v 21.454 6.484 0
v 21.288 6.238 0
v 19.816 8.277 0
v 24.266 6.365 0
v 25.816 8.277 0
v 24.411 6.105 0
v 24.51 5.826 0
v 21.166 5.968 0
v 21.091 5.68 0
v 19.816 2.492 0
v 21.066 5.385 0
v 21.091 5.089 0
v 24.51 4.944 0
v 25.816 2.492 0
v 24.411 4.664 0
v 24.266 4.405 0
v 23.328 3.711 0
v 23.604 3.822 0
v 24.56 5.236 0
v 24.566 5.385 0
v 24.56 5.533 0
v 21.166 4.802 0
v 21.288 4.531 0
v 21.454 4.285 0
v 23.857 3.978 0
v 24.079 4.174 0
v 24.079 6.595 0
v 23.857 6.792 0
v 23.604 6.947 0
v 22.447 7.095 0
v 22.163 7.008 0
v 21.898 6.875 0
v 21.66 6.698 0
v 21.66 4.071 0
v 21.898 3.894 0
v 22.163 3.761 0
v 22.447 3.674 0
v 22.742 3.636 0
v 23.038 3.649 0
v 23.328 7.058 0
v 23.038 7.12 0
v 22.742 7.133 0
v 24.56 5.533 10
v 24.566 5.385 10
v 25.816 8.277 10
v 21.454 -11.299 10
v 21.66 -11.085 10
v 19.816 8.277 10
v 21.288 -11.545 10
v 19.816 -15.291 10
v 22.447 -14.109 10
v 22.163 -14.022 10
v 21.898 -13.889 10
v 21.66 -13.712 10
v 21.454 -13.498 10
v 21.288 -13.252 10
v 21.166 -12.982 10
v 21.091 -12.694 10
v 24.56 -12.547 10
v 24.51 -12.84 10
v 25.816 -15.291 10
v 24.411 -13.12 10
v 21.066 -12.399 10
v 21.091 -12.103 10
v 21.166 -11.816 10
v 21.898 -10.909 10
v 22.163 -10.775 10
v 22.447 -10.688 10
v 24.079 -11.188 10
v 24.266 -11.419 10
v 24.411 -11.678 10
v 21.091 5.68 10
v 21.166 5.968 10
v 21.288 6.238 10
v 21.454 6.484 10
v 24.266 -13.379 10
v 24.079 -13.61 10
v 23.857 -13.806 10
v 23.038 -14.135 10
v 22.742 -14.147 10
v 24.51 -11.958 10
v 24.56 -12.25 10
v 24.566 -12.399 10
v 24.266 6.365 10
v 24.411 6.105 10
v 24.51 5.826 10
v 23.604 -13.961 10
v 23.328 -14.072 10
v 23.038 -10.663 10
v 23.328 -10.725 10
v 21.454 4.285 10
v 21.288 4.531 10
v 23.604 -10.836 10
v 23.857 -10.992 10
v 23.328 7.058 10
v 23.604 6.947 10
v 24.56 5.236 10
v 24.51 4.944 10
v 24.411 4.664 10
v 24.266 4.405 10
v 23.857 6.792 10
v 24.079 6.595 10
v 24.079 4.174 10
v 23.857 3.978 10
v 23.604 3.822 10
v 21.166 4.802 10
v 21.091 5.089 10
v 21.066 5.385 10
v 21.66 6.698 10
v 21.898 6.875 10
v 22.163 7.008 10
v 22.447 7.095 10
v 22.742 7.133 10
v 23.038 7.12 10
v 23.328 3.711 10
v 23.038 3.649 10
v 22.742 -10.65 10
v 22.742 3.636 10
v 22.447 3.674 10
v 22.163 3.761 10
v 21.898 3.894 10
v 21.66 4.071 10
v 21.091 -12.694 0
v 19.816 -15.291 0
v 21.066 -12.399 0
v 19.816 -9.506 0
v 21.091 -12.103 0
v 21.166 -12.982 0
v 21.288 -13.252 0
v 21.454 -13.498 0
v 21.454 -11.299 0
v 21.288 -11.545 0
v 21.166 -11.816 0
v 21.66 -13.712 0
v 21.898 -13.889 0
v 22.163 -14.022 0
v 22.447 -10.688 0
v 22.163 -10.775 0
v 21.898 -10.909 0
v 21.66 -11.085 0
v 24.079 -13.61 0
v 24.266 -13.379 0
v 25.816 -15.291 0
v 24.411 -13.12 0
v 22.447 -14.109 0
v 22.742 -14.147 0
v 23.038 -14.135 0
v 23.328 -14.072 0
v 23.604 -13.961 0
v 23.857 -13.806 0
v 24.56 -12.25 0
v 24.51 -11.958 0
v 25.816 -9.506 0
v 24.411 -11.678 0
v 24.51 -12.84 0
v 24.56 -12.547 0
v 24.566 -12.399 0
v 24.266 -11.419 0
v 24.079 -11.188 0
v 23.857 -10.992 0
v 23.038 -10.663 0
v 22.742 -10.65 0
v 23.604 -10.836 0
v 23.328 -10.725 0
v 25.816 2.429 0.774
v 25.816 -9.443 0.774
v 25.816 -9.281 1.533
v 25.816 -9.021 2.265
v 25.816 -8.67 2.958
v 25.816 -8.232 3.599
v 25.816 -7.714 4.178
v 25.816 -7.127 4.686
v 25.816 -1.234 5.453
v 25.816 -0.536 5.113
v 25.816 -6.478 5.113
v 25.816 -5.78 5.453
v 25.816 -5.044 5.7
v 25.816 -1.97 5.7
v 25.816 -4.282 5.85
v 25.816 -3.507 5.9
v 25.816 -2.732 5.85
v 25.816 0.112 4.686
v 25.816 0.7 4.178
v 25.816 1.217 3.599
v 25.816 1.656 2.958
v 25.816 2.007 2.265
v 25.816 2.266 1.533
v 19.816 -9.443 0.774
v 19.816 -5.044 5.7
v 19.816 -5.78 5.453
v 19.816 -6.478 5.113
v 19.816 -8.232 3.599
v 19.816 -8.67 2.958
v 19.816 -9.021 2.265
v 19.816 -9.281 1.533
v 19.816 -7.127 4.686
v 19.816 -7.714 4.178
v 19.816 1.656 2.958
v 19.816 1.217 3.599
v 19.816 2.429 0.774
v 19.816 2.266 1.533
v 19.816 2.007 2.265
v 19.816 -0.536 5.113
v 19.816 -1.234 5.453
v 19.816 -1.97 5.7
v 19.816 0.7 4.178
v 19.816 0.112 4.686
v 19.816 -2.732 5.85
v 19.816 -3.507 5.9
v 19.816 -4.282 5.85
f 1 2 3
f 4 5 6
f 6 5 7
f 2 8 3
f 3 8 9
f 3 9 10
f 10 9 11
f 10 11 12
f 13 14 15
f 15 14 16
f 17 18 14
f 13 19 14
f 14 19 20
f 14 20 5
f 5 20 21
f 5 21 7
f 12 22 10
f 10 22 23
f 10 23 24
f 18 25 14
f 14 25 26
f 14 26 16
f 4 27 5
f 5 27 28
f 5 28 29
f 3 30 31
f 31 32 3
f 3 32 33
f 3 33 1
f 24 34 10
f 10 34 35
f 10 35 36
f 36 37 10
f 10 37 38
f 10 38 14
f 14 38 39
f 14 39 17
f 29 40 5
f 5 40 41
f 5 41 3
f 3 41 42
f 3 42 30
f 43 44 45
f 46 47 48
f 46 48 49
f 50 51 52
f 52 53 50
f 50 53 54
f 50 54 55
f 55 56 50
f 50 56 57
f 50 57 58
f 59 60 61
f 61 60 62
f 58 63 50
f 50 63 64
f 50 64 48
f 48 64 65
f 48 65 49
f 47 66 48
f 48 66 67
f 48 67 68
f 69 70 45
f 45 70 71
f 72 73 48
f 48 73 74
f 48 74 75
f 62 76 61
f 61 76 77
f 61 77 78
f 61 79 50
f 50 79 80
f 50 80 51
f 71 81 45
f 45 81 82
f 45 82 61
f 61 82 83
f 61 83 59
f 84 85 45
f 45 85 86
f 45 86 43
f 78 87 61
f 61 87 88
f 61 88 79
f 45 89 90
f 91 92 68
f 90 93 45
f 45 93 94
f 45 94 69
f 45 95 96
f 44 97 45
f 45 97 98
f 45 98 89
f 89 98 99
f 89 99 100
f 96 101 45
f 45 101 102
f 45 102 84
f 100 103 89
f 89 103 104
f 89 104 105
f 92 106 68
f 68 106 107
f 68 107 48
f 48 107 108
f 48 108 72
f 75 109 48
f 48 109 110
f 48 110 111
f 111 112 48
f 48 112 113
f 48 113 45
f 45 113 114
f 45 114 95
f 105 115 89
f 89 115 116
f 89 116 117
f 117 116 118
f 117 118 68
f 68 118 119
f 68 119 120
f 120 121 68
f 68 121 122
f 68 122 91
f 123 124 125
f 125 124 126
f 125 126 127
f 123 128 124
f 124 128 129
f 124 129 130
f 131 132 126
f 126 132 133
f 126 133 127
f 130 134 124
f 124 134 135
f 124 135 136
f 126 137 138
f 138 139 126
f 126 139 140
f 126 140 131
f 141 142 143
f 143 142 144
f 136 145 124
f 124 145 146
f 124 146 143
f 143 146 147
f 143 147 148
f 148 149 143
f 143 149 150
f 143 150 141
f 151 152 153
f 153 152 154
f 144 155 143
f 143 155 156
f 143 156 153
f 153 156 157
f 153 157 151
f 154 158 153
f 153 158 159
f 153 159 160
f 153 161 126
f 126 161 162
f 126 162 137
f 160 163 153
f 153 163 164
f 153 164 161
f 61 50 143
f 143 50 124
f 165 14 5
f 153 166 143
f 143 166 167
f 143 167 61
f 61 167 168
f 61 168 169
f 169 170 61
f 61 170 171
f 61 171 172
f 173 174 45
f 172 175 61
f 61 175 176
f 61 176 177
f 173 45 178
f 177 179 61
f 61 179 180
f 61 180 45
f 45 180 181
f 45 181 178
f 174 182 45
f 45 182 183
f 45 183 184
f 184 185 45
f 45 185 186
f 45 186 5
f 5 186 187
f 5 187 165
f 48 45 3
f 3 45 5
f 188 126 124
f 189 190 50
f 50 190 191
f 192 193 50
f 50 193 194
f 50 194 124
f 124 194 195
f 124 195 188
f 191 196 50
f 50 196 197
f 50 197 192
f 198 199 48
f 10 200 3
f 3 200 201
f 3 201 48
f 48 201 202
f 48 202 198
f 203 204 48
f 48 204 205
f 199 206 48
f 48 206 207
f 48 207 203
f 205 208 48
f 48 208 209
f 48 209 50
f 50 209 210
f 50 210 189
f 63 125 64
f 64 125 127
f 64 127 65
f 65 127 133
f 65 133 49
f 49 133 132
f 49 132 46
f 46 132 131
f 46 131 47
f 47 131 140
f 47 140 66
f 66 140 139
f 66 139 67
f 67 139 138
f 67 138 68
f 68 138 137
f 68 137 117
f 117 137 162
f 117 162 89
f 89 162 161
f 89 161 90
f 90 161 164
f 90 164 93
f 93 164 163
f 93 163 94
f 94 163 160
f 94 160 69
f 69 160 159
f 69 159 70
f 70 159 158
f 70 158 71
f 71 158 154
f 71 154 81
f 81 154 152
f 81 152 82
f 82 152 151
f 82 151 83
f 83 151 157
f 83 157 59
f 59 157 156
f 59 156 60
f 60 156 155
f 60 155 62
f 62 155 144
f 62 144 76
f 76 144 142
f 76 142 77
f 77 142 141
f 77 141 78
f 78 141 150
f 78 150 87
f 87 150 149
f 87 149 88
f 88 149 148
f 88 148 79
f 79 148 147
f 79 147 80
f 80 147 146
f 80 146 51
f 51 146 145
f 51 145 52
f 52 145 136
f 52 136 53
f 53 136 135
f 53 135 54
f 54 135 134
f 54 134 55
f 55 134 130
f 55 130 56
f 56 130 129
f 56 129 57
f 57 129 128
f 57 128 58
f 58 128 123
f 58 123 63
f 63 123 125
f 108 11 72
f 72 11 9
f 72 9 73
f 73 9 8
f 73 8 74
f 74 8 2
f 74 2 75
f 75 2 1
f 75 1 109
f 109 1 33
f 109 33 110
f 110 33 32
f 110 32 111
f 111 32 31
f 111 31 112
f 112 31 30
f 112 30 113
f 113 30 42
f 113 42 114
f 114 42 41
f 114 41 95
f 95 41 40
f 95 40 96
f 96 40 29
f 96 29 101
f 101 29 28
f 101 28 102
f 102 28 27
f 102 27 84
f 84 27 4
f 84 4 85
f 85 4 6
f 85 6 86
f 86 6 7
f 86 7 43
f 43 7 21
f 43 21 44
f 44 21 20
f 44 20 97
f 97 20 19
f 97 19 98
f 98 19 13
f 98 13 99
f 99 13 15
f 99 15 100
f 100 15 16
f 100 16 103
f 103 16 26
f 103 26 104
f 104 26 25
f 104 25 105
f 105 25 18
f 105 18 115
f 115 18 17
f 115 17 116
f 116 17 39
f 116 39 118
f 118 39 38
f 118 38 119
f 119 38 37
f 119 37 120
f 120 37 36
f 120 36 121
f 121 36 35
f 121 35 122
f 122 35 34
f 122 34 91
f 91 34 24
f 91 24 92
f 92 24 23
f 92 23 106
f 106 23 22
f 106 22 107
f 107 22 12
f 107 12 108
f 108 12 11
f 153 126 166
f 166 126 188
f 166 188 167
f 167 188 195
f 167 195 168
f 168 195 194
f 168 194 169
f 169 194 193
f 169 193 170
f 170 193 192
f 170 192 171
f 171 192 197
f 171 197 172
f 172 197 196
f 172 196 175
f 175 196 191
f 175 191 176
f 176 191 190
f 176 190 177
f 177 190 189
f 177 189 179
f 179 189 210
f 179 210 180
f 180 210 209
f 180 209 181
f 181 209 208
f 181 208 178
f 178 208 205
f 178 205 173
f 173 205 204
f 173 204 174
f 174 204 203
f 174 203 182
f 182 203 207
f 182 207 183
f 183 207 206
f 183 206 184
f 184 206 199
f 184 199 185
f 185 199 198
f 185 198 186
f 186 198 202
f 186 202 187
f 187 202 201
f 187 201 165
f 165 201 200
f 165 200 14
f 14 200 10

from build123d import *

# Parameters (mm, degrees)
SKICA1_R                 = 1.75
P_IDAT_VYSUNUT_M1_DEPTH  = 10
SKICA2_R                 = 6
ODEBRAT_VYSUNUT_M1_DEPTH = 6


with BuildPart() as part:
    # Skica1 → Přidat vysunutím1 (new body)
    with BuildSketch(Plane.XY):
        Polygon((25.815994553, 2.492123403), (25.815994553, 8.277058671), (19.815994553, 8.277058671), (19.815994553, 2.492123403), (19.815994553, -9.506219408), (19.815994553, -15.291154677), (25.815994553, -15.291154677), (25.815994553, -9.506219408), align=None)
        with Locations((22.815994553, -12.398687042)):
            Circle(SKICA1_R, mode=Mode.SUBTRACT)
        with Locations((22.815994553, 5.384591037)):
            Circle(SKICA1_R, mode=Mode.SUBTRACT)
    extrude(amount=P_IDAT_VYSUNUT_M1_DEPTH)

    # Skica2 → Odebrat vysunutím1 (cut)
    with BuildSketch(Plane.ZY.offset(-19.815994553)):
        with Locations((-0.099711825, -3.507048003)):
            Circle(SKICA2_R)
    extrude(amount=-ODEBRAT_VYSUNUT_M1_DEPTH, mode=Mode.SUBTRACT)


solid = part.part
